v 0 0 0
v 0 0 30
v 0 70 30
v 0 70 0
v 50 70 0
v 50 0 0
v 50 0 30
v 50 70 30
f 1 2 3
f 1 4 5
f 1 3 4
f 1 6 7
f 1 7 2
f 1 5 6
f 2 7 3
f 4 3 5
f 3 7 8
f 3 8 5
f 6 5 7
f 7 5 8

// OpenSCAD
// organizer-v12 / div1
// 3D AI Designer V1.1 Geometry Engine uretimi - tum olculer mm.

// ============ PARAMETERS ============
width = 50;
depth = 70;
height = 30;
$fn = 96;  // dairesel yuzey cozunurlugu (bbox dogrulugu icin)

// ============ GEOMETRY + BOOLEAN OPERATIONS ============
cube([50, 70, 30]);

// ============ ASSEMBLY / NOTLAR ============
// NOT: assembly metadata: validation disi (simulasyon yok)

// ============ EXPORT ============
// Export harici arac ile yapilir (Export-Stl.ps1).
